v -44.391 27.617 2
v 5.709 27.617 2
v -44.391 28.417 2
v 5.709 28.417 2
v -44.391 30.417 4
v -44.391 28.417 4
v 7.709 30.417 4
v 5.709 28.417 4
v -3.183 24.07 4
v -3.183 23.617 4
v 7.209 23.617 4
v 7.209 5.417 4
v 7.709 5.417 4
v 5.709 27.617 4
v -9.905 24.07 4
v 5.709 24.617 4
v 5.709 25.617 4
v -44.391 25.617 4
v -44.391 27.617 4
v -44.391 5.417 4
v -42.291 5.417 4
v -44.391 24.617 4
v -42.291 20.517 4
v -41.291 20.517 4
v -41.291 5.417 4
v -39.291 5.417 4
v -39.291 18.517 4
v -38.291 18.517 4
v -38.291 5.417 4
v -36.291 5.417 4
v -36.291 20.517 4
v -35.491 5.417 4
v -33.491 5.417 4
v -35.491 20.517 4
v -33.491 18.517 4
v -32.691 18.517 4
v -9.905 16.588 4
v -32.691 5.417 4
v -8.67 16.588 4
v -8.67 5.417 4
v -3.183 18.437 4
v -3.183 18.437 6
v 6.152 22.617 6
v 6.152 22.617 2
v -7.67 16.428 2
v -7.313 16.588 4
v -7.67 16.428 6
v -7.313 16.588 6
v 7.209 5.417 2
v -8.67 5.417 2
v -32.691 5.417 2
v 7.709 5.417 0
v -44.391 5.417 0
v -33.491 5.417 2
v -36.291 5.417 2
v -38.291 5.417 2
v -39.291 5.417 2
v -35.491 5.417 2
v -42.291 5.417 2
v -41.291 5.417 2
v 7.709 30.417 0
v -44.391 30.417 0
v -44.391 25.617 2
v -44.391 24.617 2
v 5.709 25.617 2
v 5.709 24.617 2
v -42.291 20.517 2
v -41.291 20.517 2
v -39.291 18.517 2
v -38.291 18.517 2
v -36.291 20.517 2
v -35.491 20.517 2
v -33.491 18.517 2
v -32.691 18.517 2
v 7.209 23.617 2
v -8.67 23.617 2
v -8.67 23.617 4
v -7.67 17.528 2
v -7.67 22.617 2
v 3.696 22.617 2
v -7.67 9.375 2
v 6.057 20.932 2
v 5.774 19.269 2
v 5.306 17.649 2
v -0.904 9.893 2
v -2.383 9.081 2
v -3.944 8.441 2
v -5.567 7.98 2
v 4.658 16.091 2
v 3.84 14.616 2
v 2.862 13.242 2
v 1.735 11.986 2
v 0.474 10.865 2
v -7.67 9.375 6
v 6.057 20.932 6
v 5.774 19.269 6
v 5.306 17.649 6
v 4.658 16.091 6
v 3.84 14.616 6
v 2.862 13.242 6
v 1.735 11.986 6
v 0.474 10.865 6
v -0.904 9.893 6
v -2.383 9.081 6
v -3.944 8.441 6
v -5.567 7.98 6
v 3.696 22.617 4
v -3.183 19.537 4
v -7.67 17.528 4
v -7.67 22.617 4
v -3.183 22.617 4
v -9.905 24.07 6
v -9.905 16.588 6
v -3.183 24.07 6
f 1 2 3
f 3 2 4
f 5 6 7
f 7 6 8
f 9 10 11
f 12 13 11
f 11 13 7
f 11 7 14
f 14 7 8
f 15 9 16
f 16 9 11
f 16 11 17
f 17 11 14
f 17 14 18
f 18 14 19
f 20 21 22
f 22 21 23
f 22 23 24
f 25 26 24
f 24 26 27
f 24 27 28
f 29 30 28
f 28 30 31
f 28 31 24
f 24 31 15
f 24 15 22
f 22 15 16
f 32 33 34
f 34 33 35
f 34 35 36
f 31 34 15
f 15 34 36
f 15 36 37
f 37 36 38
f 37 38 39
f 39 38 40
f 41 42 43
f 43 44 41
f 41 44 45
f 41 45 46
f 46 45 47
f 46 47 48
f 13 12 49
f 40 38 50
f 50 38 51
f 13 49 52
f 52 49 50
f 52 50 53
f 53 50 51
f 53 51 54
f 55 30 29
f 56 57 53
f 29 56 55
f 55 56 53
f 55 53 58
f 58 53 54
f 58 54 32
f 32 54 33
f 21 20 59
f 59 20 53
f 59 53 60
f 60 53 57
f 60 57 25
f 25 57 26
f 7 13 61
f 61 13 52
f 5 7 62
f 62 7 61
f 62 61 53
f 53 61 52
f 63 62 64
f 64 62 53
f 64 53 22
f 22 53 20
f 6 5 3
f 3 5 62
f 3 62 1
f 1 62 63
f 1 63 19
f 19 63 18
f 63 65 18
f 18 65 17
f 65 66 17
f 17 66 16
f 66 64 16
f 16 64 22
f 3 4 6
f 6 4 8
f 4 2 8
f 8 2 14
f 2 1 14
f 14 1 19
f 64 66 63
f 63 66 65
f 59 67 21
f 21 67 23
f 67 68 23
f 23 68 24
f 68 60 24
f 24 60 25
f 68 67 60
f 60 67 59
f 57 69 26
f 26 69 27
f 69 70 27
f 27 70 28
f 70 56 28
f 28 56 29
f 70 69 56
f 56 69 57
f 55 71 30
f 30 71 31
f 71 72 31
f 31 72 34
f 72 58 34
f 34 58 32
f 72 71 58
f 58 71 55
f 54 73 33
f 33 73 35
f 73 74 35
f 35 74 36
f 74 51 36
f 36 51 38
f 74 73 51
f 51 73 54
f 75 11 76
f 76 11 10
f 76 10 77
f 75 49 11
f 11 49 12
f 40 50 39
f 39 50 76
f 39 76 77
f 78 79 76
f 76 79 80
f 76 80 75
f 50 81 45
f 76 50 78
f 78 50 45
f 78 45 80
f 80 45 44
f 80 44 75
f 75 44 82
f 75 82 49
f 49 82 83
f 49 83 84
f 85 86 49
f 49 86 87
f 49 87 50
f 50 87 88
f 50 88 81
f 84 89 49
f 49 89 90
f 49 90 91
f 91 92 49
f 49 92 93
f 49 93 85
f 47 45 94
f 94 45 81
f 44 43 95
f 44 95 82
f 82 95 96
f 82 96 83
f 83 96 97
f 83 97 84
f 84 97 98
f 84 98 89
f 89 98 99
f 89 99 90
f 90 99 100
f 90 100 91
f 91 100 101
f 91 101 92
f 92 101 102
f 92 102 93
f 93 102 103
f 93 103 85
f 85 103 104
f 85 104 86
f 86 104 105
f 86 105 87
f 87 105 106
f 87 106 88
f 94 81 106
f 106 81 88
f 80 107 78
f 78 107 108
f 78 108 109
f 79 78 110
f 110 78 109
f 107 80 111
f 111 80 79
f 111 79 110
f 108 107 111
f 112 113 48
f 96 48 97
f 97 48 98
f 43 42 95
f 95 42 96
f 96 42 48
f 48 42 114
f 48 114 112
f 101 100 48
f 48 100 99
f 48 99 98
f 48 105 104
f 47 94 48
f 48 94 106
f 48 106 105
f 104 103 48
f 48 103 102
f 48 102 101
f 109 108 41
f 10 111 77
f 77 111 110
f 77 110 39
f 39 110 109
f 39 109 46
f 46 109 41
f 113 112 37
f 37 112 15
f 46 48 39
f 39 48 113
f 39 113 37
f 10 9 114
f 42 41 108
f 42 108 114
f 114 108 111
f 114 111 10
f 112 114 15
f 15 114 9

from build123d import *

# Parameters (mm, degrees)
CROQUIS1_W              = 62
CROQUIS1_H              = 25
SALIENTE_EXTRUIR1_DEPTH = 4
CROQUIS2_W              = 1
CROQUIS2_H              = 15.1
CROQUIS2_H_2            = 13.1
CROQUIS2_W_2            = 0.8
CORTAR_EXTRUIR1_DEPTH   = 2
SALIENTE_EXTRUIR7_START = 2
SALIENTE_EXTRUIR7_DEPTH = 2
CROQUIS6_W              = 6.721970081
CROQUIS6_H              = 7.48208129
SALIENTE_EXTRUIR8_DEPTH = 2
CROQUIS7_W              = 9.9
CROQUIS7_H              = 25
CORTAR_EXTRUIR2_DEPTH   = 2


with BuildPart() as part:
    # Croquis1 → Saliente-Extruir1 (new body)
    with BuildSketch(Plane.XY):
        with Locations((-23.290947876, 17.916666667)):
            Rectangle(CROQUIS1_W, CROQUIS1_H)
    extrude(amount=SALIENTE_EXTRUIR1_DEPTH)

    # Croquis2 → Cortar-Extruir1 (cut)
    # profile 1 of 6: a face of its own
    with BuildSketch(Plane.XY.offset(4)):
        Polygon((5.709052124, 25.616666667), (-44.390947876, 25.616666667), (-44.390947876, 27.616666667), (5.709052124, 27.616666667), (5.709052124, 28.416666667), (-44.390947876, 28.416666667), (-44.390947876, 30.416666667), (-54.290947876, 30.416666667), (-54.290947876, 5.416666667), (-44.390947876, 5.416666667), (-44.390947876, 24.616666667), (5.709052124, 24.616666667), align=None)
    # profile 2 of 6: a face of its own
    with BuildSketch(Plane.XY.offset(4)):
        Polygon((7.209052124, 23.616666667), (-8.669899716, 23.616666667), (-8.669899716, 22.207688927), (-8.669899716, 5.416666667), (7.209052124, 5.416666667), align=None)
        with BuildLine():
            Line((6.152295829, 22.616666667), (-7.669899716, 16.428416464))
            Line((-7.669899716, 16.428416464), (-7.669899716, 9.374881416))
            Line((-7.669899716, 9.374881416), (-5.566552681, 7.979930525))
            ThreePointArc((-5.566552681, 7.979930525), (2.861635527, 13.241627263), (6.152295829, 22.616666667))
        make_face(mode=Mode.SUBTRACT)
        Polygon((-7.669899716, 22.616666667), (3.696371878, 22.616666667), (-7.669899716, 17.52794308), align=None, mode=Mode.SUBTRACT)
    # profile 3 of 6: a face of its own
    with BuildSketch(Plane.XY.offset(4)):
        with Locations((-41.790947876, 12.966666667)):
            Rectangle(CROQUIS2_W, CROQUIS2_H)
    # profile 4 of 6: a face of its own
    with BuildSketch(Plane.XY.offset(4)):
        with Locations((-38.790947876, 11.966666667)):
            Rectangle(CROQUIS2_W, CROQUIS2_H_2)
    # profile 5 of 6: a face of its own
    with BuildSketch(Plane.XY.offset(4)):
        with Locations((-35.890947876, 12.966666667)):
            Rectangle(CROQUIS2_W_2, CROQUIS2_H)
    # profile 6 of 6: a face of its own
    with BuildSketch(Plane.XY.offset(4)):
        with Locations((-33.090947876, 11.966666667)):
            Rectangle(CROQUIS2_W_2, CROQUIS2_H_2)
    extrude(amount=-CORTAR_EXTRUIR1_DEPTH, mode=Mode.SUBTRACT)

    # Croquis4 → Saliente-Extruir7 (add)
    with BuildSketch(Plane.XY.offset(4).offset(SALIENTE_EXTRUIR7_START)):
        with BuildLine():
            Line((-5.566552681, 7.979930525), (-7.669899716, 9.374881416))
            Line((-7.669899716, 9.374881416), (-7.669899716, 16.428416464))
            Line((-7.669899716, 16.428416464), (6.152295829, 22.616666667))
            ThreePointArc((6.152295829, 22.616666667), (2.861635527, 13.241627263), (-5.566552681, 7.979930525))
        make_face()
    extrude(amount=-SALIENTE_EXTRUIR7_DEPTH)

    # Croquis6 → Saliente-Extruir8 (add)
    with BuildSketch(Plane.XY.offset(4)):
        with Locations((-6.543986658, 20.329349066)):
            Rectangle(CROQUIS6_W, CROQUIS6_H)
    extrude(amount=SALIENTE_EXTRUIR8_DEPTH)

    # Croquis7 → Cortar-Extruir2 (cut)
    with BuildSketch(Plane.XY.offset(2)):
        with Locations((-49.340947876, 17.916666667)):
            Rectangle(CROQUIS7_W, CROQUIS7_H)
    extrude(amount=-CORTAR_EXTRUIR2_DEPTH, mode=Mode.SUBTRACT)


solid = part.part
